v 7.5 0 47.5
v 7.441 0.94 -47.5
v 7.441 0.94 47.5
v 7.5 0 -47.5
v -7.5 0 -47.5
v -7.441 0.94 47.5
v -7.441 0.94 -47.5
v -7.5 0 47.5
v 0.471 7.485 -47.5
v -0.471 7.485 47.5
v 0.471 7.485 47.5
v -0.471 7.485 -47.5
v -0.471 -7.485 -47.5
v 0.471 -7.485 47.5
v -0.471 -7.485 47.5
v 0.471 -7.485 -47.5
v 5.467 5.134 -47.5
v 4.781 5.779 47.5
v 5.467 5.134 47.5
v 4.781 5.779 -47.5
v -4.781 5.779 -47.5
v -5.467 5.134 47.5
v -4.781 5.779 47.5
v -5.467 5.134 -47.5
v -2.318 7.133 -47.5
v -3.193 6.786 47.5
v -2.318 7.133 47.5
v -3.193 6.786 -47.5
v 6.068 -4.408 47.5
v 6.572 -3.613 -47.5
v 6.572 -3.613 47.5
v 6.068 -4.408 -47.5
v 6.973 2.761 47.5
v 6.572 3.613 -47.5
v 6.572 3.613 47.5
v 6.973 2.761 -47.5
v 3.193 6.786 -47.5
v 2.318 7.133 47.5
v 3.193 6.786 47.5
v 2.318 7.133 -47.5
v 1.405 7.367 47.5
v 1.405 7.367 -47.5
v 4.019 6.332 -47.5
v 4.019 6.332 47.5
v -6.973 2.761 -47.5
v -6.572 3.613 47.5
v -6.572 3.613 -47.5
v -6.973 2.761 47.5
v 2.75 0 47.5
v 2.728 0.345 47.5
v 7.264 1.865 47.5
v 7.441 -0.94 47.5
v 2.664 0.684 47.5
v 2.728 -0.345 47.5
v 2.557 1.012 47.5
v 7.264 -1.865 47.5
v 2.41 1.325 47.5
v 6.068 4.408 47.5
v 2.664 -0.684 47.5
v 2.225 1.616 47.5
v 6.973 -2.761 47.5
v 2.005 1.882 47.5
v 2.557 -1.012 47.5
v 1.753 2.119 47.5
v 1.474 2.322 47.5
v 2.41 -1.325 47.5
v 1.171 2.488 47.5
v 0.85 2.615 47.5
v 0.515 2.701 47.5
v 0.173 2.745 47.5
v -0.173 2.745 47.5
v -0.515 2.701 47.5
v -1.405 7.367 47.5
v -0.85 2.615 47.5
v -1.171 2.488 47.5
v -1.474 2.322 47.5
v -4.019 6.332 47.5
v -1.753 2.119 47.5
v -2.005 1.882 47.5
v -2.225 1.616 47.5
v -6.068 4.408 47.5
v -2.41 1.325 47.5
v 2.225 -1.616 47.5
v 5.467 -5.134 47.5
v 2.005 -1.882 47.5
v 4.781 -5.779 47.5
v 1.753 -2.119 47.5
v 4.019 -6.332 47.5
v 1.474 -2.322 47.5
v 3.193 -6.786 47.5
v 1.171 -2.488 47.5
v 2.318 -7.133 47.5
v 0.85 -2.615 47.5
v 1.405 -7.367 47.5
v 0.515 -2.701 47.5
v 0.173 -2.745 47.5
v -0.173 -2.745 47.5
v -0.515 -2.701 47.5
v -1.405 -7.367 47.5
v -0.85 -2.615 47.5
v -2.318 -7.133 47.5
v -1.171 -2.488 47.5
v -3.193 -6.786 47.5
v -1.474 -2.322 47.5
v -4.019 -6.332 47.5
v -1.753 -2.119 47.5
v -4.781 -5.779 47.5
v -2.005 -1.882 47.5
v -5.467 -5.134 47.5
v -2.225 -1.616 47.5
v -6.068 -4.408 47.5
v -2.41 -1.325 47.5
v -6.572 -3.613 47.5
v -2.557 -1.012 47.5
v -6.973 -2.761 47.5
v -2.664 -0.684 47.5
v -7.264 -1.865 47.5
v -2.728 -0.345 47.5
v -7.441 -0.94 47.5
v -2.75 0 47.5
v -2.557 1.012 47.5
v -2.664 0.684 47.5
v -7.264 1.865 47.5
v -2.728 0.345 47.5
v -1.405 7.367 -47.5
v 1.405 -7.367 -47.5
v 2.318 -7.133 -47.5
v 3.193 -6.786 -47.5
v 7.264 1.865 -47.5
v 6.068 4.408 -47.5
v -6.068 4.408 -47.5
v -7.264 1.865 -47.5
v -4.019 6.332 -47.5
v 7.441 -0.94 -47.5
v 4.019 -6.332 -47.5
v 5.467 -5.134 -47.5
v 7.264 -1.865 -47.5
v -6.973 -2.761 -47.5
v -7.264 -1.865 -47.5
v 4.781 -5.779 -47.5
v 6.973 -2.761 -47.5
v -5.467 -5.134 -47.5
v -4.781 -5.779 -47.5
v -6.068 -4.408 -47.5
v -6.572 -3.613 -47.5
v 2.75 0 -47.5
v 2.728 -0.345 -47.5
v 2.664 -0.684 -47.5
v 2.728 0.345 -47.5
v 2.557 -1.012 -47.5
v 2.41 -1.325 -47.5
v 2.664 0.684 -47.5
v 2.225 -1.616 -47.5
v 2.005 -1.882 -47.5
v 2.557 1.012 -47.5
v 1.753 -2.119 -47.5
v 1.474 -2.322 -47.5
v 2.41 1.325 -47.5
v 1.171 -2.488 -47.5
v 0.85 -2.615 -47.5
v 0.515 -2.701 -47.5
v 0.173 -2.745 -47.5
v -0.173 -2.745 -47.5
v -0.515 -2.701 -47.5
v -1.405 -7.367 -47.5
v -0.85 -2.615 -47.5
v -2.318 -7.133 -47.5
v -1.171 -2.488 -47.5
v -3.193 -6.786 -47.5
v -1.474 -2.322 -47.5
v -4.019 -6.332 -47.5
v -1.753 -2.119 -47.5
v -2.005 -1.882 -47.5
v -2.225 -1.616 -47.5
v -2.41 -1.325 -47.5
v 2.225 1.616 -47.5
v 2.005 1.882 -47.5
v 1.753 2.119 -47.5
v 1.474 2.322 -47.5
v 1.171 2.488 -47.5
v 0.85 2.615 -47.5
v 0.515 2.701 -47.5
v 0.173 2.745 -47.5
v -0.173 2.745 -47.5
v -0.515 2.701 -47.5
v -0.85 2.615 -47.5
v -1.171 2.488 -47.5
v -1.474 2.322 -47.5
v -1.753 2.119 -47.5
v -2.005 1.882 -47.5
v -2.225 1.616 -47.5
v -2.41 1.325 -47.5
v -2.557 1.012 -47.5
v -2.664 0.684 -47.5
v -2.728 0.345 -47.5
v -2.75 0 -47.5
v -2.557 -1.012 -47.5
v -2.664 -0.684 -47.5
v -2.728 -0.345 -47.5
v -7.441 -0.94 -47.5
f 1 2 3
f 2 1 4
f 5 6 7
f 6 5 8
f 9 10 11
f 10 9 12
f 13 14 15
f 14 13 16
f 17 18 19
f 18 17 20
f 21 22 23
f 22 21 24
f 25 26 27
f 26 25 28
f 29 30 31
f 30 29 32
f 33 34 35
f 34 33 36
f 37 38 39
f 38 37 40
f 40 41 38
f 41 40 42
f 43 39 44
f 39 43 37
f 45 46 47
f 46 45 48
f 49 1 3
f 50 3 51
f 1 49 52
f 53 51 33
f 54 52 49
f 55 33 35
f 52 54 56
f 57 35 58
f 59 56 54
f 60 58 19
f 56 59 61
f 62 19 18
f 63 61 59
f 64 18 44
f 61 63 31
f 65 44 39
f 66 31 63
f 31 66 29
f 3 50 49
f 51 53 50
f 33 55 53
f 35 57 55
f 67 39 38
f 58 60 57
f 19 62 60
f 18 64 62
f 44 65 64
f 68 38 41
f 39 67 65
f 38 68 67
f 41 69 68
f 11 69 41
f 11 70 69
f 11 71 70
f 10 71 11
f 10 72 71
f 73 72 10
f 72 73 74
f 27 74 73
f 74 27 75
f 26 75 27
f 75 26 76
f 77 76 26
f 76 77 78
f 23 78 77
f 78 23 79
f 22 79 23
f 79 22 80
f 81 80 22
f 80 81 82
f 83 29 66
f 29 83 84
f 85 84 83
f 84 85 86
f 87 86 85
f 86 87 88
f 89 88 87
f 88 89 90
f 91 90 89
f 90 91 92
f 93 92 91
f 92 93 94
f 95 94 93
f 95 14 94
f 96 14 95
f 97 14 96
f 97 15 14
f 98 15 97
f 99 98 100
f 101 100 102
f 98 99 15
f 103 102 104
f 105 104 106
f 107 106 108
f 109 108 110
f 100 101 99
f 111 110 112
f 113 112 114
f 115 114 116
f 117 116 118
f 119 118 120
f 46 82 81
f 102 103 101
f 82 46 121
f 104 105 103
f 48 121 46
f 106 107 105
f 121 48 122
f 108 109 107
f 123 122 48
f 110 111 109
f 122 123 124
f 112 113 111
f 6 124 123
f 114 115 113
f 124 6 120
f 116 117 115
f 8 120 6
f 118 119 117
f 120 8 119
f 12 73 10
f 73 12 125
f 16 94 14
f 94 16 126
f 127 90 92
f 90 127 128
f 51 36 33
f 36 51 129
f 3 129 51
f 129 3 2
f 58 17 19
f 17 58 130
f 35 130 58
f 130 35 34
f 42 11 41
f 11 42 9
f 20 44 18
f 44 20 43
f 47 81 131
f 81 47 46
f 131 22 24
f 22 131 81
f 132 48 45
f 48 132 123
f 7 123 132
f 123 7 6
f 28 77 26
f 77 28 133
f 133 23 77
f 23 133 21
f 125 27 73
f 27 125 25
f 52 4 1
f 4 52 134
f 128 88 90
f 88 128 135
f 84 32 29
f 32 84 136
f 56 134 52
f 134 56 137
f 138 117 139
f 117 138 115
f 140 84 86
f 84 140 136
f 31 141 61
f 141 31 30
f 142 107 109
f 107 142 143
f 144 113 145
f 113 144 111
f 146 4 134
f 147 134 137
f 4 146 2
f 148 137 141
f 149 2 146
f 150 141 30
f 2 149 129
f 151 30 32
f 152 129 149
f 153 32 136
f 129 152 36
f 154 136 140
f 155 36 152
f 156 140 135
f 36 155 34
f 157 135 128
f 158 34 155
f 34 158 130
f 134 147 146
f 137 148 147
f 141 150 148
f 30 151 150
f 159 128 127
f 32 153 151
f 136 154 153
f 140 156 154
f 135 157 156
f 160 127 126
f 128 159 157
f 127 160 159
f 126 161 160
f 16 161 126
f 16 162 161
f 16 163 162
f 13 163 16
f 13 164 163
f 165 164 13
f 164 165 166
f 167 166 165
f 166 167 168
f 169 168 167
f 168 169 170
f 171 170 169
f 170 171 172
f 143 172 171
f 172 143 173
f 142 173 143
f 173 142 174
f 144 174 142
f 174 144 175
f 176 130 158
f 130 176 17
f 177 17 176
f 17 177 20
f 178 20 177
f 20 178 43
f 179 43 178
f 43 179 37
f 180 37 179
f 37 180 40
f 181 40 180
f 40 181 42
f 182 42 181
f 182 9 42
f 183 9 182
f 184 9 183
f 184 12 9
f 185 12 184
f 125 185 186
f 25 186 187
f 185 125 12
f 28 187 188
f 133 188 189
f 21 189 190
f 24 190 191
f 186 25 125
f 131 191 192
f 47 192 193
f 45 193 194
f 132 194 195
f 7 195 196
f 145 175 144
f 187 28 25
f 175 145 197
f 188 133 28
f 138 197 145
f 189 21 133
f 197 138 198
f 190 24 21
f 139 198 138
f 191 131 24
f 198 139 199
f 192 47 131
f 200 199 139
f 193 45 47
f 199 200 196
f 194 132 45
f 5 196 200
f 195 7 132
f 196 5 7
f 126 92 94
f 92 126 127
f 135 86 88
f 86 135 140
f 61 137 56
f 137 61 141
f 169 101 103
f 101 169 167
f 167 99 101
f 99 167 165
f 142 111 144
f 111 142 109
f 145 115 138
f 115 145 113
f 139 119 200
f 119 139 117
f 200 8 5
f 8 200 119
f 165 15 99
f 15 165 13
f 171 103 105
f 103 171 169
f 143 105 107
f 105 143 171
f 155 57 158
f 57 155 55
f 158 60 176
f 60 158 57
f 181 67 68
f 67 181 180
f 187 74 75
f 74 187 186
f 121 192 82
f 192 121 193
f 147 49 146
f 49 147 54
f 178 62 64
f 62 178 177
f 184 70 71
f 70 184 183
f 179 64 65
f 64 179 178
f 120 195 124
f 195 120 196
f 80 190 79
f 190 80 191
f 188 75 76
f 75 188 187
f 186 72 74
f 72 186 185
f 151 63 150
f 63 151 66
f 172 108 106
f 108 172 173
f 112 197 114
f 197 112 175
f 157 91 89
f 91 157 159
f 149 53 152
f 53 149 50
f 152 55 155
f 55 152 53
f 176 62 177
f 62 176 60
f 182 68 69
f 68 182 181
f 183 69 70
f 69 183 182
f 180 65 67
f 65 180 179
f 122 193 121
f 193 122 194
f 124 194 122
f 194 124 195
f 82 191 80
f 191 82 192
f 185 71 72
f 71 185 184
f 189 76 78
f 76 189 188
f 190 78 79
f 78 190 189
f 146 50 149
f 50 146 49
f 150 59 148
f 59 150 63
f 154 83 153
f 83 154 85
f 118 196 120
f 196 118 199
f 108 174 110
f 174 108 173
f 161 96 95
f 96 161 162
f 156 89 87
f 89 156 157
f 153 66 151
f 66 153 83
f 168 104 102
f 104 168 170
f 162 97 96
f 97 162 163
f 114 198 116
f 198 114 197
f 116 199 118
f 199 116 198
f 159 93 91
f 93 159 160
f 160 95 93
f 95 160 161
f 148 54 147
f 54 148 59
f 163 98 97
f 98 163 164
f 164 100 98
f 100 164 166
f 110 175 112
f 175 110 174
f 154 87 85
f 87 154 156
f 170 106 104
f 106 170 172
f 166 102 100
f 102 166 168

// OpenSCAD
$fn = 50;


difference() {
	union() {
		translate(v = [0, 0, -47.5000000000]) {
			cylinder(h = 95, r = 7.5000000000);
		}
	}
	union() {
		translate(v = [0, 0, -100.0000000000]) {
			cylinder(h = 200, r = 2.7500000000);
		}
	}
}
